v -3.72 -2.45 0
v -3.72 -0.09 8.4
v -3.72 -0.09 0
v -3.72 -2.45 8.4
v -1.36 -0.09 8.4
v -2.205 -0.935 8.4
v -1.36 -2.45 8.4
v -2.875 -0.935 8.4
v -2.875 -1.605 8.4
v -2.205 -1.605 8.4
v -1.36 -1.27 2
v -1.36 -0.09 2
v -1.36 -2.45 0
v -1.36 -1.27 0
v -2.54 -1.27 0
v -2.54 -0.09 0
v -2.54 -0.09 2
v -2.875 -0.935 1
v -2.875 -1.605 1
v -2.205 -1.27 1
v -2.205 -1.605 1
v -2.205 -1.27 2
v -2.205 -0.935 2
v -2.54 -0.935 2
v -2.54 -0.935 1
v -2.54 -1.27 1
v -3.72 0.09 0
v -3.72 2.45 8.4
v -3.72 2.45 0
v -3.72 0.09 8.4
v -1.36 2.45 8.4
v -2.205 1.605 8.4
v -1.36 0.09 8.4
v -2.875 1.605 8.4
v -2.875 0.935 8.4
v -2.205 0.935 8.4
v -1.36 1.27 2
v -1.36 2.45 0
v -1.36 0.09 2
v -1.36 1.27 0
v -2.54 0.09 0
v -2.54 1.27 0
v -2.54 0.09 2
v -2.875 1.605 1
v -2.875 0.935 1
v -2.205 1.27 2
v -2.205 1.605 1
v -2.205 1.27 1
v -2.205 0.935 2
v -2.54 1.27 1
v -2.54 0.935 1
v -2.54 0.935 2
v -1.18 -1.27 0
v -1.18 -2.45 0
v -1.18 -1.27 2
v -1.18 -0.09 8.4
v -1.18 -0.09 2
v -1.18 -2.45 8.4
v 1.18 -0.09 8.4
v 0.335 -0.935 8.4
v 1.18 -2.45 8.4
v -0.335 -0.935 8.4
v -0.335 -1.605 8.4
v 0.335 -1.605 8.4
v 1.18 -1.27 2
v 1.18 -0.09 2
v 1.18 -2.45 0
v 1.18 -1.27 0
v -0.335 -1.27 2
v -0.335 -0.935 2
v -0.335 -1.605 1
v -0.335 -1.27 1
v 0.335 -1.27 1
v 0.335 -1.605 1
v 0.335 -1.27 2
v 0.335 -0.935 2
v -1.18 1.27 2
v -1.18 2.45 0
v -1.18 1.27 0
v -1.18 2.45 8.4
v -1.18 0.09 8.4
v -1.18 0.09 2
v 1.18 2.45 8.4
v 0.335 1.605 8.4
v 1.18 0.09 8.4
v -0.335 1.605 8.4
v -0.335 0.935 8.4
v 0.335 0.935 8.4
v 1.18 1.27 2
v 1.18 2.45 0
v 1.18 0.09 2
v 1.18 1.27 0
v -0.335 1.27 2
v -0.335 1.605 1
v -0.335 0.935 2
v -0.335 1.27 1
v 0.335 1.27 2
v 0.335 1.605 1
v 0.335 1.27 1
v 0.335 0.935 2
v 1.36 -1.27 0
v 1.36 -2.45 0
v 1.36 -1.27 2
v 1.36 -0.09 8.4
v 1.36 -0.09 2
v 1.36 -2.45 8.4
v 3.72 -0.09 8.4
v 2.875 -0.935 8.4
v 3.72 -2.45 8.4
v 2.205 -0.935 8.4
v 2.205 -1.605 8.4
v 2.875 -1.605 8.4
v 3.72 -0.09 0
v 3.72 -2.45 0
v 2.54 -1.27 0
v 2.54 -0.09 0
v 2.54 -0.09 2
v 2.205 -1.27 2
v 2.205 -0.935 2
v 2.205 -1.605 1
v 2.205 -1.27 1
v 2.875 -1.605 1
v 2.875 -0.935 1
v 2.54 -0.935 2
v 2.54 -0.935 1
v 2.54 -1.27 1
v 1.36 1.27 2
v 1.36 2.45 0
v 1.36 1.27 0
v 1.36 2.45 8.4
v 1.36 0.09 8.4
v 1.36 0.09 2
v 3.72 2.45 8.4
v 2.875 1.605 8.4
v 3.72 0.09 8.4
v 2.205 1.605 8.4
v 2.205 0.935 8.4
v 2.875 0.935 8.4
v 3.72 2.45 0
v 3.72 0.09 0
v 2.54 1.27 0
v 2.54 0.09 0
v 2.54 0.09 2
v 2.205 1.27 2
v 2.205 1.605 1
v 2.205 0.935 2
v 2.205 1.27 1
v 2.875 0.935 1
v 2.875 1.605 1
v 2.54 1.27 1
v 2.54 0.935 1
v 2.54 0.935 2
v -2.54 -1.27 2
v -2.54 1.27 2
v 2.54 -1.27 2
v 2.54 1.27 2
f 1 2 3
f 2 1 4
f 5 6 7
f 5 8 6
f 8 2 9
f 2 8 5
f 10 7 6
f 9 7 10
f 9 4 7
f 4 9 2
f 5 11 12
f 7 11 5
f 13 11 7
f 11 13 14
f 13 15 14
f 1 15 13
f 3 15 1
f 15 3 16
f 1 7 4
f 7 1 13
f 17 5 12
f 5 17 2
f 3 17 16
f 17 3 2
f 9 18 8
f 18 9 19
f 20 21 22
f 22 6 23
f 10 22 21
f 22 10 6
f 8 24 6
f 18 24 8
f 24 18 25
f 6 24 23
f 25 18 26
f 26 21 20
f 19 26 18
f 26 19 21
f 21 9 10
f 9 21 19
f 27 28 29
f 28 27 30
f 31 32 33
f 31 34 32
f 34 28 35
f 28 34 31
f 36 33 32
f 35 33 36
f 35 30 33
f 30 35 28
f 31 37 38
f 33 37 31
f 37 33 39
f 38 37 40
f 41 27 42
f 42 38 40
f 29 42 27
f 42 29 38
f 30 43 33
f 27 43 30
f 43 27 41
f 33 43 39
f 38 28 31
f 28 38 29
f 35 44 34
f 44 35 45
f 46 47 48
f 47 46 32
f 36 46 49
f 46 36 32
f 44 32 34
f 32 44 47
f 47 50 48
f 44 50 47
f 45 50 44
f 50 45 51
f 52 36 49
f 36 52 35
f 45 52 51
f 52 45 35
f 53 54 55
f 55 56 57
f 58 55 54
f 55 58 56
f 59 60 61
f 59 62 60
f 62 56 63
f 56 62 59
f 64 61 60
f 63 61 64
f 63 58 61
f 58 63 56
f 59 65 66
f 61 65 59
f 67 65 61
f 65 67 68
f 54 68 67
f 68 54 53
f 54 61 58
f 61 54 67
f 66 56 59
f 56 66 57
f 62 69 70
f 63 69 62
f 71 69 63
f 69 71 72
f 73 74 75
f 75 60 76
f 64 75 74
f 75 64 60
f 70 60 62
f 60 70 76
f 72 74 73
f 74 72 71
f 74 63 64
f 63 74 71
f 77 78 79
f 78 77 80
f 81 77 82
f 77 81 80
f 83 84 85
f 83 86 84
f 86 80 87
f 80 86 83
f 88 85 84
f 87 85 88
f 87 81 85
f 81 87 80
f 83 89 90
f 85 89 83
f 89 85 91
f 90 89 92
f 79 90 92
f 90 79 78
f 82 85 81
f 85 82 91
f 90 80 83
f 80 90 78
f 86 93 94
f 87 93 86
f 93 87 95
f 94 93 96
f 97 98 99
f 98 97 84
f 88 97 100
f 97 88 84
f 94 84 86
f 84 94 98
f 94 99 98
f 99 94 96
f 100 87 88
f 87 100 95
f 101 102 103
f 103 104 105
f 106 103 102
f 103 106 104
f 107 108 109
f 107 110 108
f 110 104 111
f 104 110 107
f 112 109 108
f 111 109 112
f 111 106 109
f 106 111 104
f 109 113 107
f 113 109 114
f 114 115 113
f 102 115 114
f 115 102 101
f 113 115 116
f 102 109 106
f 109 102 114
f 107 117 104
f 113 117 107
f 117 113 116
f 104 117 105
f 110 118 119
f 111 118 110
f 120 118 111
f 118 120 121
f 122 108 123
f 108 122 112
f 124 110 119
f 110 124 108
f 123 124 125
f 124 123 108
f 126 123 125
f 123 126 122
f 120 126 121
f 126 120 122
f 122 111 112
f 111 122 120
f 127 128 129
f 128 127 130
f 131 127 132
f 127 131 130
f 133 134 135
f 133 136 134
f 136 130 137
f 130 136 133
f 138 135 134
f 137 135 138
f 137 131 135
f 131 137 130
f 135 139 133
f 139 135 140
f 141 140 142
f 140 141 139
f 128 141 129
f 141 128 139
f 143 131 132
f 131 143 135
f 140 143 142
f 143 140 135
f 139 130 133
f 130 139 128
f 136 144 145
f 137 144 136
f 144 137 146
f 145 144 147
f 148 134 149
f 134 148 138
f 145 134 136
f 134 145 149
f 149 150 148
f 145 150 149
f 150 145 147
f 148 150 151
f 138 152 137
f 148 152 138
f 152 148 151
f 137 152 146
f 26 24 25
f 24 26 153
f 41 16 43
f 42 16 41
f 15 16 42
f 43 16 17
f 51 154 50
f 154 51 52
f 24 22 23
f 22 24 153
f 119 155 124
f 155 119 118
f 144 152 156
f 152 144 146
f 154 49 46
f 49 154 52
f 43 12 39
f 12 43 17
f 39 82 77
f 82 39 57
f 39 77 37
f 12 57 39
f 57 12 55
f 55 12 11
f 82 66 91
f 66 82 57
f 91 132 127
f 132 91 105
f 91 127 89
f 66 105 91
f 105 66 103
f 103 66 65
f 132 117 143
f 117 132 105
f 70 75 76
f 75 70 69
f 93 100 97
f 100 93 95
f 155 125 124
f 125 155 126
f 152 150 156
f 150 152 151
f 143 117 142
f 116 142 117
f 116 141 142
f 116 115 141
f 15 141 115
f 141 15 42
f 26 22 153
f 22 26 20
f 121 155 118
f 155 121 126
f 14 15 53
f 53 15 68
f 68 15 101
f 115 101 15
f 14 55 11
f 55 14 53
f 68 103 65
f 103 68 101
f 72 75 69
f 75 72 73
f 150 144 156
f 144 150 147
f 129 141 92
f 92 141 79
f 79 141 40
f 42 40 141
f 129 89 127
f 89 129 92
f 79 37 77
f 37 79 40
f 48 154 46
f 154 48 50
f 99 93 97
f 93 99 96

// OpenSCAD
/*
  Breakaway Female Header Pins: pitch 2.54, adjustable
  Neeraj Verma
  July 31 2018
  GPL V3

  derived from Molex KK 100 break-away header:
  http://www.molex.com/pdm_docs/sd/022032041_sd.pdf

  Usage (default values shown): 
  ```
  use </path/to/libraries/header_pins_female.scad>
  //full
  headerPinsFemale(columns = 3, rows = 2, centerV = false, center = true, pitch = 2.52);
  //simple
  headerPinsFemale(3, 2);
  ```
  columns = integer number of columns (X axis)
  rows = integer number of rows (Y axis)
  centerV = vertically center around base - fale places bottom at origin
  center = center the array at the origin
  pitch = distance between center of each pin

  Note: 
  * the breakaway connector is a bit of a fudge and does not appear at the same
    Z height for centered/versus non centered; this should be largely irrelevant 

  updates can be found at GitHub:
  https://github.com/txoof/OpenSCAD_electronics

*/

/*[Dimensions]*/
//Columns
columns = 3; //[1:30]
//Rows
rows = 2; //[1:5]
//Pitch
pitch = 2.54; //[1.25, 1.27, 2, 2.54, 3.5, 3.96]

pinHeight=8.4;

pinAboveNylon=1;

module singlePinFemale(center = false, locate = false, v = false, pinHeight=14.22, pinAboveNylon = 7.49) {
  pinDimensions = [.67, .67, pinHeight];
  nylonDimensions = [2.36, 2.36, pinHeight];

  trans = center == false ? [0, 0, nylonDimensions[2]/2] : [0, 0, 0];

  translate(trans)
  difference() {
    color("darkgray")
      cube(nylonDimensions, center =true);
    translate([0, 0, (-pinDimensions[2]/2+nylonDimensions[2]/2)+pinAboveNylon])
      color("gold")
      cube(pinDimensions, center = true);    
  }

  if (v) {
    echo("single pin dimension:", pinDimensions);
    echo("pin above nylon:", pinAboveNylon);
  }

}

module headerPinsFemale(columns = 3, rows = 2, centerV = false, center = true, 
                  pitch = 2.54, locate = false, v = false, pinHeight=pinHeight, pinAboveNylon=pinAboveNylon) {
  transV = centerV == false ? pitch/2 : 0; // vertical center

  trans = center == false ? [0, 0, 0] : [-(columns-1)*pitch/2, -(rows-1)*pitch/2, 0];
  if (v) {
    echo("header pin array");
    echo("usage: columns, rows, centerV, center, pitch, locate, v(erbose)");
  }

  translate(trans) 
  union() {
    for (i = [0:columns-1]) {
      for (j = [0:rows-1]) {
        translate([pitch*i, pitch*j, 0])
          singlePinFemale(locate = locate, v = v, pinHeight=pinHeight, pinAboveNylon=pinAboveNylon);
      }
    }
    translate([0, 0, -pitch/2+transV])
      color("black")
      cube([pitch*(columns-1), pitch*(rows-1), 2]);
  }
}

//singlePinFemale();
headerPinsFemale(columns = columns , rows = rows, pitch = pitch, pinHeight = pinHeight, pinAboveNylon=pinAboveNylon);
